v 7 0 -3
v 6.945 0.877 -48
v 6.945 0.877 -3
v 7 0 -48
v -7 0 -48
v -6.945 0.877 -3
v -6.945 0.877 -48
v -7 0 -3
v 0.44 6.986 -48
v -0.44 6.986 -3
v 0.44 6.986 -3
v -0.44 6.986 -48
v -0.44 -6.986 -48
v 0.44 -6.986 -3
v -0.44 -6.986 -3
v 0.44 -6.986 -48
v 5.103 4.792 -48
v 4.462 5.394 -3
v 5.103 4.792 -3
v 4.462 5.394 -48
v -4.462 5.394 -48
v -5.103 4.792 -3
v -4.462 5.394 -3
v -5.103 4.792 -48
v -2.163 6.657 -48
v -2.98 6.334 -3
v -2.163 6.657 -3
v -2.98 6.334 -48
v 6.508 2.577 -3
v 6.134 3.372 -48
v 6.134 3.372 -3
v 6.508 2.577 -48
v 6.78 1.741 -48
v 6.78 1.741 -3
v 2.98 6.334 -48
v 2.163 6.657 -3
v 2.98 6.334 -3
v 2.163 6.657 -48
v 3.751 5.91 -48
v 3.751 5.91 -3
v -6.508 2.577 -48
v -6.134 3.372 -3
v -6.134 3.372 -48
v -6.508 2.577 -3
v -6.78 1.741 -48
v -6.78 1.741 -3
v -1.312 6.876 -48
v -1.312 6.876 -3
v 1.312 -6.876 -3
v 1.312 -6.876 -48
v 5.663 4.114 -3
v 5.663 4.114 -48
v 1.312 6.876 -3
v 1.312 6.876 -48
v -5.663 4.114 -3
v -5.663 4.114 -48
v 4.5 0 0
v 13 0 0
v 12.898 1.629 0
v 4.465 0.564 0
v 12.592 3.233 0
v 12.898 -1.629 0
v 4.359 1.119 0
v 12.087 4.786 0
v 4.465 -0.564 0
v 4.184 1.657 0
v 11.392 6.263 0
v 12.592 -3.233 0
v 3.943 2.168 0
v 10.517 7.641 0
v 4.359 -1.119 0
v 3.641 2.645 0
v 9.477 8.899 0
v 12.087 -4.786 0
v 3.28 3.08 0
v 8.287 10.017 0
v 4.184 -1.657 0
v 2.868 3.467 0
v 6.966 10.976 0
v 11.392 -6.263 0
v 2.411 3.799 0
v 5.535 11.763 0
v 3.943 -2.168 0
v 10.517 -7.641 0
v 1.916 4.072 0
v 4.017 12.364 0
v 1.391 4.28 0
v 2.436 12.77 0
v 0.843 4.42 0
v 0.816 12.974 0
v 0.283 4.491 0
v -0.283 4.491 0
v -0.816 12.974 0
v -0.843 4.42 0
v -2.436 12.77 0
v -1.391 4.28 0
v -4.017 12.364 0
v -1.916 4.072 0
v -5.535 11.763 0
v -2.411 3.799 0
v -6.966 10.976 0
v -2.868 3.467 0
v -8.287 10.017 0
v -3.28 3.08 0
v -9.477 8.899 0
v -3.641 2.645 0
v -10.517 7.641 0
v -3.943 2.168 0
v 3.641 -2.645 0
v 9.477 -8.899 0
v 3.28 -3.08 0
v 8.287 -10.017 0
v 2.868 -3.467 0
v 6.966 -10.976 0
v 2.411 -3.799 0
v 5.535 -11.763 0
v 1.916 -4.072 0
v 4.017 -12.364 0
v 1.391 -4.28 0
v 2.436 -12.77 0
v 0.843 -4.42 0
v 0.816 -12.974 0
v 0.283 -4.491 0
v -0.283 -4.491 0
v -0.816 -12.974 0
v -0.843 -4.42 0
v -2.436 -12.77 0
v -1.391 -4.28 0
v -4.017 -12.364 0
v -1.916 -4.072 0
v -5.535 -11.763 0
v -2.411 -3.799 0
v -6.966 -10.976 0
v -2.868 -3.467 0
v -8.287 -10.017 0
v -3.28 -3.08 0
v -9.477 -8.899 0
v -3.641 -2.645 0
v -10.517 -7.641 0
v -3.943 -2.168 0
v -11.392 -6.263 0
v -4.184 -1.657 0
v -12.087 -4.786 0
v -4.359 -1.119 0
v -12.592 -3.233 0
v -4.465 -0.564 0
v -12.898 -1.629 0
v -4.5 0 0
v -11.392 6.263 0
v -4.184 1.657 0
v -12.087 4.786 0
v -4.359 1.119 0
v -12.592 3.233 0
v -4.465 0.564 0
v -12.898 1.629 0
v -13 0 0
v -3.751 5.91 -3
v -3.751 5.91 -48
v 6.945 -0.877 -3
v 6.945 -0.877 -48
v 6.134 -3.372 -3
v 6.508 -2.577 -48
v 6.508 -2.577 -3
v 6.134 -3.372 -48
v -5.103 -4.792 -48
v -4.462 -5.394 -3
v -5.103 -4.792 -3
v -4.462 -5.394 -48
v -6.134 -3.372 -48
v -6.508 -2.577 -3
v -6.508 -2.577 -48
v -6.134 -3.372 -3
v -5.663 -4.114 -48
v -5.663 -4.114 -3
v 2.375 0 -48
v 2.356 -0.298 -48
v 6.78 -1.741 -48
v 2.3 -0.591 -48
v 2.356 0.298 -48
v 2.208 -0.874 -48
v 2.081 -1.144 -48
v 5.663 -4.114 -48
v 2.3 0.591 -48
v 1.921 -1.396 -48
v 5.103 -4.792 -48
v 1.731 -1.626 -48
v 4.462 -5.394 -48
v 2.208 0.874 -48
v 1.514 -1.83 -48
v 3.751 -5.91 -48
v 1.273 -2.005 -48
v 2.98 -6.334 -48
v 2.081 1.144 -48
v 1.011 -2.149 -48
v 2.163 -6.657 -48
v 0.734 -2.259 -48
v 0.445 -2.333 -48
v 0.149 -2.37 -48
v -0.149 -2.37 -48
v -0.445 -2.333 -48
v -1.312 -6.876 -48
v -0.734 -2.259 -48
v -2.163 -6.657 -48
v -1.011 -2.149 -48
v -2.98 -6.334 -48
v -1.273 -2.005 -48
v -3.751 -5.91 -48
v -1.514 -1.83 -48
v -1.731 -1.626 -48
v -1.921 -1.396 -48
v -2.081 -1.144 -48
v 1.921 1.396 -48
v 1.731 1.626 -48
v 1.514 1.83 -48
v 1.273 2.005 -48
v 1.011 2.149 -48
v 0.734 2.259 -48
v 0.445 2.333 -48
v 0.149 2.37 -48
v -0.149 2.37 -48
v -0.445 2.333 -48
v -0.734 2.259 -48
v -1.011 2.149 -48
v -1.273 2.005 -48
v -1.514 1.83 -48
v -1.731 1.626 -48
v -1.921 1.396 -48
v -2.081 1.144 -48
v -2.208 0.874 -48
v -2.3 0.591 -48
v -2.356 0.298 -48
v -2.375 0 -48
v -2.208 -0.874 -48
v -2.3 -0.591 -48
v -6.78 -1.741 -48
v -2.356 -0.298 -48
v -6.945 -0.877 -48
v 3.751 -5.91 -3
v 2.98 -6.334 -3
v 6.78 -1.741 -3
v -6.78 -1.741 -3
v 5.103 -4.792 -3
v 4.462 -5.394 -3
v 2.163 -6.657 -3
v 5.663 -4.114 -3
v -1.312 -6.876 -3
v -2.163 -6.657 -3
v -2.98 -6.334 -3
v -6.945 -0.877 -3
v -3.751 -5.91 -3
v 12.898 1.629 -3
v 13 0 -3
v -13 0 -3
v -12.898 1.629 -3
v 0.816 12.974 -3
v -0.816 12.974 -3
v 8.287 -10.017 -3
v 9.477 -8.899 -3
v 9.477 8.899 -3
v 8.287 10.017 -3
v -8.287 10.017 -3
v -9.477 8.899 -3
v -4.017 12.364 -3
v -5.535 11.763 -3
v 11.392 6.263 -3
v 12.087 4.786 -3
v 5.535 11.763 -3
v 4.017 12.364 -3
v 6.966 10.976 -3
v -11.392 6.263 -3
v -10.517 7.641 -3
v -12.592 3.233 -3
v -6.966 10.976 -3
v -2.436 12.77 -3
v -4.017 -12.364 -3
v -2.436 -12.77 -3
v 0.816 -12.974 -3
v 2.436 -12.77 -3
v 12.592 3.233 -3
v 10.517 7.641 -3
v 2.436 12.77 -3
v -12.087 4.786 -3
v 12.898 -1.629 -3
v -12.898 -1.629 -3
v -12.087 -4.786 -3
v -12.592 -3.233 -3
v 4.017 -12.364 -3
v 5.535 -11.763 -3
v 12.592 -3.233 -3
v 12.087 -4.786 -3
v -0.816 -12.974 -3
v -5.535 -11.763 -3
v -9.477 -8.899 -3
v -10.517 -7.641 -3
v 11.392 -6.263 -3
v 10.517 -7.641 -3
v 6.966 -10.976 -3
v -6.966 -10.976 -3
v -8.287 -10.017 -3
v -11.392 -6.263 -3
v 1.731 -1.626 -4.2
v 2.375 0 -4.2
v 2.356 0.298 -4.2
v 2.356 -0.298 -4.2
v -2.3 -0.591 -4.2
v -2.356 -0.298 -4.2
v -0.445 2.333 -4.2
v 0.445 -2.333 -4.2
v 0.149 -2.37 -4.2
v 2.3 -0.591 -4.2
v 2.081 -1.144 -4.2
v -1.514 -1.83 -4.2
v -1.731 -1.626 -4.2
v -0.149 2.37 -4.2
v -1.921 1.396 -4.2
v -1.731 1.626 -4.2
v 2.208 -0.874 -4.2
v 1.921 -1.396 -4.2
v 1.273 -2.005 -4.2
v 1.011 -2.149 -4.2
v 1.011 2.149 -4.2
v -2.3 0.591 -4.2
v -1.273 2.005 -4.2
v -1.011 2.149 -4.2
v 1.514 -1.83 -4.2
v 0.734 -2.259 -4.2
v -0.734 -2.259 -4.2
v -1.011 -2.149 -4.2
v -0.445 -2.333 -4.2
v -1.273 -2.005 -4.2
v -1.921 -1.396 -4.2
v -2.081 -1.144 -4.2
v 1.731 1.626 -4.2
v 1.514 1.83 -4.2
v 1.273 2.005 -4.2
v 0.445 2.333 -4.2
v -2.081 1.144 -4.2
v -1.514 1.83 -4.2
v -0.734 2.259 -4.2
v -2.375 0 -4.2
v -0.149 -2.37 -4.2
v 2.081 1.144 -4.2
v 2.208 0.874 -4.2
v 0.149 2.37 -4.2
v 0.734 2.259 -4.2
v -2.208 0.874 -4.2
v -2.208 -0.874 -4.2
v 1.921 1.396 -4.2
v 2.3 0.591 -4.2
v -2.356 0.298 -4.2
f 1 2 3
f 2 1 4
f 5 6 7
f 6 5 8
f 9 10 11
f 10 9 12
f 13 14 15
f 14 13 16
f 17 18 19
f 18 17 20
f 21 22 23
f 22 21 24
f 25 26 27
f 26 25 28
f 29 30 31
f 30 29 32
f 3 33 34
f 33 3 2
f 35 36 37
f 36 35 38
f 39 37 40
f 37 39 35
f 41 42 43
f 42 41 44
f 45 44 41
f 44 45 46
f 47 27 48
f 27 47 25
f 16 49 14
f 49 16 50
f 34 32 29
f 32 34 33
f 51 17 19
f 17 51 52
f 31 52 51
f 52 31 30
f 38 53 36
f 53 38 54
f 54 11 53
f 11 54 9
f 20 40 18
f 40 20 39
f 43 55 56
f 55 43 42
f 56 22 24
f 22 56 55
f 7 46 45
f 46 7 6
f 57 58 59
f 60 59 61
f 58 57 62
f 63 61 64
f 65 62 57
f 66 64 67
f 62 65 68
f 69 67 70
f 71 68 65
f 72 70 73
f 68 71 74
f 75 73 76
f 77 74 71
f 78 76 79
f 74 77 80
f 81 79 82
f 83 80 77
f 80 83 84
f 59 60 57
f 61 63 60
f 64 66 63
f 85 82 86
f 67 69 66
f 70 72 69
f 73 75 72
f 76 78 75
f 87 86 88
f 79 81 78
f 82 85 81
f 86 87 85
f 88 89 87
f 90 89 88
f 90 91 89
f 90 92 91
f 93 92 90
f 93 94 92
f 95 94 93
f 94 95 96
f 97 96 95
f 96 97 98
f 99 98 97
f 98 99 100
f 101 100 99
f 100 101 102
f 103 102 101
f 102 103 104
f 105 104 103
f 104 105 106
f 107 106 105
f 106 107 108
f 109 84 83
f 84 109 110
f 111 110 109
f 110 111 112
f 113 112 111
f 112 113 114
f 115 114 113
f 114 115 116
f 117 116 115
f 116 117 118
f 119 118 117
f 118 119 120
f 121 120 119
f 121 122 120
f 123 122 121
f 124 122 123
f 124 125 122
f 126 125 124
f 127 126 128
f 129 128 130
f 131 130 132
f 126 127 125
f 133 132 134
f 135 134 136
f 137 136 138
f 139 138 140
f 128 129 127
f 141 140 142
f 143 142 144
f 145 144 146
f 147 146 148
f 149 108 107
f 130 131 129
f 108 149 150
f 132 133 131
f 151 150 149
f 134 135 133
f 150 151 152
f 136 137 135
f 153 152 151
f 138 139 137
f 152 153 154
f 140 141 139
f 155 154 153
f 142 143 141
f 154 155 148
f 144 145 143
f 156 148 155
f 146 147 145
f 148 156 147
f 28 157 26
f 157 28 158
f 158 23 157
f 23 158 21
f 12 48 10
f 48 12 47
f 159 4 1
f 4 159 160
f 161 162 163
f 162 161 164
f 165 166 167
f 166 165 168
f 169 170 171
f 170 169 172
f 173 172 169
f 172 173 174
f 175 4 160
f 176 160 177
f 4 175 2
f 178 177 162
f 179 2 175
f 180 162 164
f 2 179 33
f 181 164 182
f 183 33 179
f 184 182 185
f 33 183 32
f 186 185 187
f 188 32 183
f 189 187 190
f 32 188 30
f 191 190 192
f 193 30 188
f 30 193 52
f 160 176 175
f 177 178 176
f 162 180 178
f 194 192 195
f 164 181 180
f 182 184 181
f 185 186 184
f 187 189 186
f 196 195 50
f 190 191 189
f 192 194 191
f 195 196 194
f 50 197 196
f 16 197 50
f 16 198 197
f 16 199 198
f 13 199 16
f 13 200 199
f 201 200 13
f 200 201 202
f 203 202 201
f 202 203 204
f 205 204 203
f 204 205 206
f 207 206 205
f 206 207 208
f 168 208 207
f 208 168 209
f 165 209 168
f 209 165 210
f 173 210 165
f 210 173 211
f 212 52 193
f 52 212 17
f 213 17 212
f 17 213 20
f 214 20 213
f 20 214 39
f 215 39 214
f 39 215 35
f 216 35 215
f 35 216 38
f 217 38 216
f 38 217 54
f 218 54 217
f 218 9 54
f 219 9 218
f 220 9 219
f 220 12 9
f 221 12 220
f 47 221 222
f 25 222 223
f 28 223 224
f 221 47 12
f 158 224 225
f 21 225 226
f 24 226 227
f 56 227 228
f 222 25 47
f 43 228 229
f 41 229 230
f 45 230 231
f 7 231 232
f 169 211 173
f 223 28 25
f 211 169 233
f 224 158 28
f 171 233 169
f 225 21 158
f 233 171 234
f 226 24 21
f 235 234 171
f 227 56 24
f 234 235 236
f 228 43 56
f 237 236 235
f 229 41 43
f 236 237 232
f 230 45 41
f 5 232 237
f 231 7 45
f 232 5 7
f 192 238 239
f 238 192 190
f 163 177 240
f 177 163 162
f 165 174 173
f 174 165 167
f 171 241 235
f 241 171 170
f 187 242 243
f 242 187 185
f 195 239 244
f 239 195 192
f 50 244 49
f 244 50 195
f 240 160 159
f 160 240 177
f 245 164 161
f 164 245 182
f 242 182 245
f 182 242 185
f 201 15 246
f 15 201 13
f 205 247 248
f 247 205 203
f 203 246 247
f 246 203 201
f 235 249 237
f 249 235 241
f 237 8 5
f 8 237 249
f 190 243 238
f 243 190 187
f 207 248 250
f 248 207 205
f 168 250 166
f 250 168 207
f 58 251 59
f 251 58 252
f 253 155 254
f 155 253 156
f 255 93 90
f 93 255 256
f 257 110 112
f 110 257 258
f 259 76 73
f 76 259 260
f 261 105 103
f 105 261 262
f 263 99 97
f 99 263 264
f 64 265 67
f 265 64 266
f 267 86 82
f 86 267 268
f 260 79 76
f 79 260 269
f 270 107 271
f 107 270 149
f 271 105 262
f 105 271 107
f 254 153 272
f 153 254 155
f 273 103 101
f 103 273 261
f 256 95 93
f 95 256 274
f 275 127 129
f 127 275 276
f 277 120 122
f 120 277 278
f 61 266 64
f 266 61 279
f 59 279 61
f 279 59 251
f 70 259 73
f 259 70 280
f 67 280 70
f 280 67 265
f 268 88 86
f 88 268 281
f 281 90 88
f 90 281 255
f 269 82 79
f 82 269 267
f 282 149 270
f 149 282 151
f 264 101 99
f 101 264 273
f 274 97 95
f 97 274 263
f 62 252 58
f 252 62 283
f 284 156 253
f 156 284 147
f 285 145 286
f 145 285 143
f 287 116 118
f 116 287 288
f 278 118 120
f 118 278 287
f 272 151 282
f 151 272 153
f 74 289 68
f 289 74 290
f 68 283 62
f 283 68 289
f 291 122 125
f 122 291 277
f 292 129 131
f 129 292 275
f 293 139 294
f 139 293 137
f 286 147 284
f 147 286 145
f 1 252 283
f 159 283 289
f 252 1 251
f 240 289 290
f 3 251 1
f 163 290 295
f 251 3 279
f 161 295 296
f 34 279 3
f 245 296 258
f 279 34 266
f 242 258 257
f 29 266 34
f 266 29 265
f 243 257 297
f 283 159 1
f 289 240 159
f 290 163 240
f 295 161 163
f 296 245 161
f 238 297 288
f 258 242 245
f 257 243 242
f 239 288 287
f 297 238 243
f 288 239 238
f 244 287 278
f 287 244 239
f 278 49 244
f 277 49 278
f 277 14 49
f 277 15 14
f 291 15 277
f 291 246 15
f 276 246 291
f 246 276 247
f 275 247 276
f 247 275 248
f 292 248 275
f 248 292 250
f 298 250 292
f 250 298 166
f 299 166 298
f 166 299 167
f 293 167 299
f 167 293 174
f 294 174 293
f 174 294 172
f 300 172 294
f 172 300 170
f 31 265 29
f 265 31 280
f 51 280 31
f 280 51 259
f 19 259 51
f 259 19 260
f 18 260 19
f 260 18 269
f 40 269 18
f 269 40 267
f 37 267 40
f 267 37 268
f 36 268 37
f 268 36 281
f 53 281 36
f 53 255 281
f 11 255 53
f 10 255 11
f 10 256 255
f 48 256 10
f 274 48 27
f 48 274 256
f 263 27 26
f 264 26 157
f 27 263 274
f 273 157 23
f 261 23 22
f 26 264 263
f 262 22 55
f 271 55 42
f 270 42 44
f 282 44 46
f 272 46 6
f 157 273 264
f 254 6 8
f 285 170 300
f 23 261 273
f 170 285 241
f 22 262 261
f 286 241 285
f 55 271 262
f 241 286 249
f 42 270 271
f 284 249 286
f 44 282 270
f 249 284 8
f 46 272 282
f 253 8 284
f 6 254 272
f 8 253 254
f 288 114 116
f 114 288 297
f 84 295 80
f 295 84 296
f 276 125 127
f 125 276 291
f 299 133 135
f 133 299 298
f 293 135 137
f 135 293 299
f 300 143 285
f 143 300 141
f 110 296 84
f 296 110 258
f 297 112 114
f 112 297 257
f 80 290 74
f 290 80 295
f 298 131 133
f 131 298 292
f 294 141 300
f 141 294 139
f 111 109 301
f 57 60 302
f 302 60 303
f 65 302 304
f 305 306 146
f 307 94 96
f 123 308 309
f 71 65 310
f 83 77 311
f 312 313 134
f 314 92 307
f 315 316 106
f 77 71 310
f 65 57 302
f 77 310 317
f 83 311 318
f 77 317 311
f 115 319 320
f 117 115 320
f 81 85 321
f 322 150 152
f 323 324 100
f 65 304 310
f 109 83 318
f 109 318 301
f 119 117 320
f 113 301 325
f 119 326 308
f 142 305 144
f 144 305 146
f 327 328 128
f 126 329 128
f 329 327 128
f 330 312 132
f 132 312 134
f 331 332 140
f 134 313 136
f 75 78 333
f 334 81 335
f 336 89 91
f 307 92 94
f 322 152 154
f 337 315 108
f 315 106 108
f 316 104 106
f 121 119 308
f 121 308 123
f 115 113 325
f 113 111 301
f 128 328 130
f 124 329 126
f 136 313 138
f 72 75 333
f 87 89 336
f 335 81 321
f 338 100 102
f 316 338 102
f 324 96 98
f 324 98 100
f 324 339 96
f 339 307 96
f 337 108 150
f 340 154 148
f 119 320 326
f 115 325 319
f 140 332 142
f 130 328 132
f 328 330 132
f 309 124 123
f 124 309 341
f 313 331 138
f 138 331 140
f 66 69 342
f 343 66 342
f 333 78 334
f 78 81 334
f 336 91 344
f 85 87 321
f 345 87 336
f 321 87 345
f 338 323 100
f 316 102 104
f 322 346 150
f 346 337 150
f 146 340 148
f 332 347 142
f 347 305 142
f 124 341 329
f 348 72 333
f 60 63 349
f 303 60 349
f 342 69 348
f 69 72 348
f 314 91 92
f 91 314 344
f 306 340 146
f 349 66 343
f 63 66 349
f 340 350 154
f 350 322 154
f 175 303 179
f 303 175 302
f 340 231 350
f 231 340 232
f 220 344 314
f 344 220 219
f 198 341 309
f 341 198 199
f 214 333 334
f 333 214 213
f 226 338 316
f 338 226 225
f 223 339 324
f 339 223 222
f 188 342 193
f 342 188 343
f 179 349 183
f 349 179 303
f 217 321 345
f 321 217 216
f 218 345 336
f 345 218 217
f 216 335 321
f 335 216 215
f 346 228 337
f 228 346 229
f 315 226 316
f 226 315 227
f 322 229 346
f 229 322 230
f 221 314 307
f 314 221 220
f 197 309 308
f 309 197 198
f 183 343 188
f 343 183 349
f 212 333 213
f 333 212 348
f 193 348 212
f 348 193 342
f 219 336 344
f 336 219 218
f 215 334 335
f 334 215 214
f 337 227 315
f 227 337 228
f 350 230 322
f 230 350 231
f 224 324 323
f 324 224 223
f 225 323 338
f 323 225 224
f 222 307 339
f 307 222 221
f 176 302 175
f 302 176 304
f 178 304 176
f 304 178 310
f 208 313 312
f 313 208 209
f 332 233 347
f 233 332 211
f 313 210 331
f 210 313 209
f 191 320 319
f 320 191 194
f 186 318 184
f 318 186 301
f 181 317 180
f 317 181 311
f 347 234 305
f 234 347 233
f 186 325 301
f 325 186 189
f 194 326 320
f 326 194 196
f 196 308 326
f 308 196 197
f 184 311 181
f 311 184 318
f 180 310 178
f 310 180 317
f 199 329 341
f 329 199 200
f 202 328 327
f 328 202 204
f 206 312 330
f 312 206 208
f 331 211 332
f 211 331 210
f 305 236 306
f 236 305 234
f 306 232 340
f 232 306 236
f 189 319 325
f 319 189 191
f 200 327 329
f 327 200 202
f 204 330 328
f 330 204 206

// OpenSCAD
$fn = 50;


difference() {
	union() {
		translate(v = [0, 0, -48.0000000000]) {
			cylinder(h = 48, r = 7.0000000000);
		}
		translate(v = [0, 0, -3.0000000000]) {
			cylinder(h = 3, r = 13.0000000000);
		}
	}
	union() {
		translate(v = [0, 0, 0]) {
			rotate(a = [0, 0, 0]) {
				difference() {
					union() {
						#translate(v = [0, 0, -48.0000000000]) {
							cylinder(h = 48, r = 2.2500000000);
						}
						#translate(v = [0, 0, -4.2000000000]) {
							cylinder(h = 4.2000000000, r1 = 2.3750000000, r2 = 4.5000000000);
						}
						#translate(v = [0, 0, -48.0000000000]) {
							cylinder(h = 48, r = 2.3750000000);
						}
						#translate(v = [0, 0, -48.0000000000]) {
							cylinder(h = 48, r = 2.2500000000);
						}
					}
					union();
				}
			}
		}
	}
}
